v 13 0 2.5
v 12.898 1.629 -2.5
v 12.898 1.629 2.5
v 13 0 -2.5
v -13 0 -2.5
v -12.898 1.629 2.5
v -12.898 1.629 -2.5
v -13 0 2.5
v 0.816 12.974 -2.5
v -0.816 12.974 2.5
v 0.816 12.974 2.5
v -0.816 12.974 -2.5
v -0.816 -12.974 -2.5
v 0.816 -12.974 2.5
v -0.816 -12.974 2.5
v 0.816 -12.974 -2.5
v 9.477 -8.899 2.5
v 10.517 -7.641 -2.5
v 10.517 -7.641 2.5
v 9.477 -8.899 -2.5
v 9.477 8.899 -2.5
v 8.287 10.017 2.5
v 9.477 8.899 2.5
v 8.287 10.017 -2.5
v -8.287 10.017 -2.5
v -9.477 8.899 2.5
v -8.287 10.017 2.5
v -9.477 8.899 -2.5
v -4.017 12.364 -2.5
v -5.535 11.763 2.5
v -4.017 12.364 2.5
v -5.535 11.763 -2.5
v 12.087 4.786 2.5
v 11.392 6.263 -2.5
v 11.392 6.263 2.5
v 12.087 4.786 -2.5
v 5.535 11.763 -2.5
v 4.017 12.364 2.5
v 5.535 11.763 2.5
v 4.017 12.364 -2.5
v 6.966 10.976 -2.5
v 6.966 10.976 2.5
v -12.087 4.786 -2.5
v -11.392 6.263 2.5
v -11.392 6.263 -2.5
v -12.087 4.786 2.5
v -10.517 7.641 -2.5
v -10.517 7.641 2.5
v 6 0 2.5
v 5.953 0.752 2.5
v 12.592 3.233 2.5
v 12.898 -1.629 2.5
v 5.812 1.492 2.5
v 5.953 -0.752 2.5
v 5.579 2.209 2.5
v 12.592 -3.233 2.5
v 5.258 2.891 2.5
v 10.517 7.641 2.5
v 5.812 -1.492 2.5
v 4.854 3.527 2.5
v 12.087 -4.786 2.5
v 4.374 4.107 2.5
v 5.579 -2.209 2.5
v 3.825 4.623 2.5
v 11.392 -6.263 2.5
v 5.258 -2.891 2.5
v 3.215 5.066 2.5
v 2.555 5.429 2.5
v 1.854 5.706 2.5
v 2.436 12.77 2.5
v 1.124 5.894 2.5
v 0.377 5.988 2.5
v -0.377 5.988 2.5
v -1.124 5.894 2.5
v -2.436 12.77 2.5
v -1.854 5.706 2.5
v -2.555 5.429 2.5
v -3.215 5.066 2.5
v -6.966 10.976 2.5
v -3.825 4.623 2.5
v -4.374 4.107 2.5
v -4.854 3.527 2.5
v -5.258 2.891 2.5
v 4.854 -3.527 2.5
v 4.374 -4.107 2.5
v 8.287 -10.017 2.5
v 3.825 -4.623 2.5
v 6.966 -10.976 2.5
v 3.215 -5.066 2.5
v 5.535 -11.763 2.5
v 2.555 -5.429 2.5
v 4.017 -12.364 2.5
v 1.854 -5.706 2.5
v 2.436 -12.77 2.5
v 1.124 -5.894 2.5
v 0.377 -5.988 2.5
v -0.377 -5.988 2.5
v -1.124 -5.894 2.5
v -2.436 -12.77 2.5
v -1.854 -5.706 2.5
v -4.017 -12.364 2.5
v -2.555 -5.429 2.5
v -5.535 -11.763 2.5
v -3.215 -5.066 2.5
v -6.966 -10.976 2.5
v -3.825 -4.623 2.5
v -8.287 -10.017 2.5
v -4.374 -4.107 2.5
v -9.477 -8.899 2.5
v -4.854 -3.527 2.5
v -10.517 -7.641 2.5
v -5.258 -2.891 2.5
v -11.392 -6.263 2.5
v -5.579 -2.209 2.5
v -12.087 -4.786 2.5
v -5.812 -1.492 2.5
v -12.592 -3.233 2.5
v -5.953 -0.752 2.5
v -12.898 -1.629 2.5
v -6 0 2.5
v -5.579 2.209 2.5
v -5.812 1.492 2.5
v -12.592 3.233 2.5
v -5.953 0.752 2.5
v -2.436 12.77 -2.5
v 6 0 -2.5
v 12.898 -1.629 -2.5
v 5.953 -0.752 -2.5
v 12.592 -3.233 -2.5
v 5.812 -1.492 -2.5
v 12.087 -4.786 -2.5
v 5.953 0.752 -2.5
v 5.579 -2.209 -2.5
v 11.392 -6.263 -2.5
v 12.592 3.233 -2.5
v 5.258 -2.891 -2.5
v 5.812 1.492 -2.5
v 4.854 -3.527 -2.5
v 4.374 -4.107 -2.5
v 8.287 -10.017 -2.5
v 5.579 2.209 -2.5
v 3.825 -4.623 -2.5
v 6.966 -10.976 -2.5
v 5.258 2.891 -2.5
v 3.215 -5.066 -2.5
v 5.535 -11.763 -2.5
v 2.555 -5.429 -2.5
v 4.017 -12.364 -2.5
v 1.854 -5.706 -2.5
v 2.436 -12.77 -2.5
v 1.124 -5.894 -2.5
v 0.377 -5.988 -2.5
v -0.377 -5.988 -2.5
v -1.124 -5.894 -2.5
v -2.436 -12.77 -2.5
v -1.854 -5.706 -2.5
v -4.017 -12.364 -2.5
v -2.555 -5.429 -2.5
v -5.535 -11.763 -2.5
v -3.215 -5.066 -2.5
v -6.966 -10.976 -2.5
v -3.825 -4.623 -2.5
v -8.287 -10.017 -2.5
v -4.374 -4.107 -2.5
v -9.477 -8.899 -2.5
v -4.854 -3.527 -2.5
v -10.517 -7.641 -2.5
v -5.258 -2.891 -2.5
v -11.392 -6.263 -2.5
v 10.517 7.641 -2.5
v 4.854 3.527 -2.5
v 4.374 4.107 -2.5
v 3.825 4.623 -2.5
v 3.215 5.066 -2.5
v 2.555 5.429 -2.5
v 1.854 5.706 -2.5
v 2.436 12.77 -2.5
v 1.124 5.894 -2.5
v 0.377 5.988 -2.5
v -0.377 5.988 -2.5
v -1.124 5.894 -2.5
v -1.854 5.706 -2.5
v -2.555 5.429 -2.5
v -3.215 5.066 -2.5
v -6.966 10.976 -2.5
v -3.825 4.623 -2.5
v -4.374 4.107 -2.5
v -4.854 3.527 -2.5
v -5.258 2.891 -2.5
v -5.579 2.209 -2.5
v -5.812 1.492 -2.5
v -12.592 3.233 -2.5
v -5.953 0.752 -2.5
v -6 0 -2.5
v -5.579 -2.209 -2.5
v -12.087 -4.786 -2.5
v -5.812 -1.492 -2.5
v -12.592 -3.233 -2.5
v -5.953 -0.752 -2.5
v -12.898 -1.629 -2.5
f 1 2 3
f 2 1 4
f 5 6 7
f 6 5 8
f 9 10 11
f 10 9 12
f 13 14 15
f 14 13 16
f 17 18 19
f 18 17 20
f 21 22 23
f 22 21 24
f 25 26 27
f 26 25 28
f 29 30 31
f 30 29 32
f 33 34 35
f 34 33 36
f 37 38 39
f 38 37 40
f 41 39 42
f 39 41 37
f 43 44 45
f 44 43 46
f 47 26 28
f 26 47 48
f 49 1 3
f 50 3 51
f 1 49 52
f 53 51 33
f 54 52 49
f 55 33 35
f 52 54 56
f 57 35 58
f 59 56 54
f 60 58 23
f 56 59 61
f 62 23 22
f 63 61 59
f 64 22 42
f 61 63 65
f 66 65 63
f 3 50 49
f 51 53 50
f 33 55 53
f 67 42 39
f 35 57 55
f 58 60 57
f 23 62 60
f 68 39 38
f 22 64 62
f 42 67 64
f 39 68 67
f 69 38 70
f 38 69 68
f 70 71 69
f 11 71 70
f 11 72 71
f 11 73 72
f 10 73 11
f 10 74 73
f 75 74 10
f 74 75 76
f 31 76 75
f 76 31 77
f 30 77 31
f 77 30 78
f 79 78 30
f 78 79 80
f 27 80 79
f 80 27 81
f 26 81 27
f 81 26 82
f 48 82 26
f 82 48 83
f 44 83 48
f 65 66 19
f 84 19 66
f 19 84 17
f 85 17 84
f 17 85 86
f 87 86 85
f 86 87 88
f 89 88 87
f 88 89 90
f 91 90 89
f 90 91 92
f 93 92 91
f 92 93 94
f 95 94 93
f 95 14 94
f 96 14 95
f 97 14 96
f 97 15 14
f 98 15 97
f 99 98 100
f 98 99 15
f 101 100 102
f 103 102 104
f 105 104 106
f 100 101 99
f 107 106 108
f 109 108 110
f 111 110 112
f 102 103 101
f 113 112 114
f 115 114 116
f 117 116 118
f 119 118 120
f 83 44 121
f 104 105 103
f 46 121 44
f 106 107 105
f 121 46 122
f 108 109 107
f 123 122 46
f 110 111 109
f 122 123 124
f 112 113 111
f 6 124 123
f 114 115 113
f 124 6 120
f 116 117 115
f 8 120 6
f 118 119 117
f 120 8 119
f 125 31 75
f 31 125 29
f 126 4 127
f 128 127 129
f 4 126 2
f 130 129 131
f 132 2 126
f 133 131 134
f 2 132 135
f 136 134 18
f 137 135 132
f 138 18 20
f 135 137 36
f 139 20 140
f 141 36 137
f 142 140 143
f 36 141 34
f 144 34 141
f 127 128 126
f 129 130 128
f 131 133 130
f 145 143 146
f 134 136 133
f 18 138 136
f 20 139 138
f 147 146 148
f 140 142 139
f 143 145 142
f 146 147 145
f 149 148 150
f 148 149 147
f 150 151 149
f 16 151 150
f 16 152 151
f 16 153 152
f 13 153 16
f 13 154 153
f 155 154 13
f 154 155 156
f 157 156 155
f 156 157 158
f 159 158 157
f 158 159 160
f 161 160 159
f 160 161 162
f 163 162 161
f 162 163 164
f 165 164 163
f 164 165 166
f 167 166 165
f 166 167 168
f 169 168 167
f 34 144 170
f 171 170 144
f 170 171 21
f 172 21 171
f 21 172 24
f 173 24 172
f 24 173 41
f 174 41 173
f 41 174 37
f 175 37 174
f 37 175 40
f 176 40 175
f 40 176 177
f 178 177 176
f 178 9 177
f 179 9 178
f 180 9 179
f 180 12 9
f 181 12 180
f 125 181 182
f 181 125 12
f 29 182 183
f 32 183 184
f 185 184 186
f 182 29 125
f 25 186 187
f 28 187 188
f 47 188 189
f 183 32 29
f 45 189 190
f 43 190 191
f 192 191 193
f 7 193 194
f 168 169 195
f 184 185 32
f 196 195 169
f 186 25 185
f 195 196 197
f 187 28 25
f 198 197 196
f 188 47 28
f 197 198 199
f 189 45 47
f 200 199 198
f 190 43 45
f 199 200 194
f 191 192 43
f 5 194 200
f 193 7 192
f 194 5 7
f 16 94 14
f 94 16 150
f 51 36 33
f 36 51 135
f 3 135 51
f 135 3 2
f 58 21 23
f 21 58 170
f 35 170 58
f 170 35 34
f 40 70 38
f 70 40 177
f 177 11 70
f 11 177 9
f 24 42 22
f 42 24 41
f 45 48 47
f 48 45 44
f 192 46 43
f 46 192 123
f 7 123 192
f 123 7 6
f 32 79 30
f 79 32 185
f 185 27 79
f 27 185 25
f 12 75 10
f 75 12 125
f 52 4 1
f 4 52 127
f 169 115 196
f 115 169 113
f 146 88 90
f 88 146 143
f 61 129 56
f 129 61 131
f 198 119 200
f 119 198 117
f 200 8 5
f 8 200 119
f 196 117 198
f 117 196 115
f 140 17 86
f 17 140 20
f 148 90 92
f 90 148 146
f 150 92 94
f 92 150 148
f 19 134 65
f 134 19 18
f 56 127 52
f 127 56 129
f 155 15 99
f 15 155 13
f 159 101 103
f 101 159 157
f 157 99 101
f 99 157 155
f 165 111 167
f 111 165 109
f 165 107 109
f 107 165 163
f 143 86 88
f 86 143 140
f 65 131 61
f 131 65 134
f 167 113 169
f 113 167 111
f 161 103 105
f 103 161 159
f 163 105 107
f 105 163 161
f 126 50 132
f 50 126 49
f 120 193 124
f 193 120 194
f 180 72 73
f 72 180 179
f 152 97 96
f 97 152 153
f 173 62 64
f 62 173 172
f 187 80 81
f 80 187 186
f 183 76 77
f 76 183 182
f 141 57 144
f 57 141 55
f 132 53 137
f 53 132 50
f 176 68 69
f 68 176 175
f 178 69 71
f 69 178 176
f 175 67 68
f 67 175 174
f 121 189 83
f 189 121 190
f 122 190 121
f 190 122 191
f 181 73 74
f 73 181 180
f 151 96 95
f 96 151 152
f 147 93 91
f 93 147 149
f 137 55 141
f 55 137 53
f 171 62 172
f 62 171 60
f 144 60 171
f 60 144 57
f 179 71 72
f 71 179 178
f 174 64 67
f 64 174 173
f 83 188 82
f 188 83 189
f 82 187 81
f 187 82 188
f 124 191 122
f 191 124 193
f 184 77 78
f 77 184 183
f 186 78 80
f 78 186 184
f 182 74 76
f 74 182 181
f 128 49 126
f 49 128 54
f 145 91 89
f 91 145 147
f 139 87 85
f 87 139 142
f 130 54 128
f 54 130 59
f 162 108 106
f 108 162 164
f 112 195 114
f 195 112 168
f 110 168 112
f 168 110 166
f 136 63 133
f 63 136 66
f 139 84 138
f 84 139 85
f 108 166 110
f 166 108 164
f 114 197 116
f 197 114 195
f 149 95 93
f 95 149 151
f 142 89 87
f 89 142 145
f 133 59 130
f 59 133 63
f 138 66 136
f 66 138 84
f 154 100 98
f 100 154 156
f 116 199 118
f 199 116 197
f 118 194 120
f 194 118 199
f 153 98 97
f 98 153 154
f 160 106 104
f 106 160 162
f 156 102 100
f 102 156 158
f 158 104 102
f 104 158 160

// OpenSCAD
$fn = 50;


difference() {
	union() {
		translate(v = [0, 0, -2.5000000000]) {
			cylinder(h = 5, r = 13.0000000000);
		}
	}
	union() {
		translate(v = [0, 0, -100.0000000000]) {
			cylinder(h = 200, r = 6);
		}
	}
}
